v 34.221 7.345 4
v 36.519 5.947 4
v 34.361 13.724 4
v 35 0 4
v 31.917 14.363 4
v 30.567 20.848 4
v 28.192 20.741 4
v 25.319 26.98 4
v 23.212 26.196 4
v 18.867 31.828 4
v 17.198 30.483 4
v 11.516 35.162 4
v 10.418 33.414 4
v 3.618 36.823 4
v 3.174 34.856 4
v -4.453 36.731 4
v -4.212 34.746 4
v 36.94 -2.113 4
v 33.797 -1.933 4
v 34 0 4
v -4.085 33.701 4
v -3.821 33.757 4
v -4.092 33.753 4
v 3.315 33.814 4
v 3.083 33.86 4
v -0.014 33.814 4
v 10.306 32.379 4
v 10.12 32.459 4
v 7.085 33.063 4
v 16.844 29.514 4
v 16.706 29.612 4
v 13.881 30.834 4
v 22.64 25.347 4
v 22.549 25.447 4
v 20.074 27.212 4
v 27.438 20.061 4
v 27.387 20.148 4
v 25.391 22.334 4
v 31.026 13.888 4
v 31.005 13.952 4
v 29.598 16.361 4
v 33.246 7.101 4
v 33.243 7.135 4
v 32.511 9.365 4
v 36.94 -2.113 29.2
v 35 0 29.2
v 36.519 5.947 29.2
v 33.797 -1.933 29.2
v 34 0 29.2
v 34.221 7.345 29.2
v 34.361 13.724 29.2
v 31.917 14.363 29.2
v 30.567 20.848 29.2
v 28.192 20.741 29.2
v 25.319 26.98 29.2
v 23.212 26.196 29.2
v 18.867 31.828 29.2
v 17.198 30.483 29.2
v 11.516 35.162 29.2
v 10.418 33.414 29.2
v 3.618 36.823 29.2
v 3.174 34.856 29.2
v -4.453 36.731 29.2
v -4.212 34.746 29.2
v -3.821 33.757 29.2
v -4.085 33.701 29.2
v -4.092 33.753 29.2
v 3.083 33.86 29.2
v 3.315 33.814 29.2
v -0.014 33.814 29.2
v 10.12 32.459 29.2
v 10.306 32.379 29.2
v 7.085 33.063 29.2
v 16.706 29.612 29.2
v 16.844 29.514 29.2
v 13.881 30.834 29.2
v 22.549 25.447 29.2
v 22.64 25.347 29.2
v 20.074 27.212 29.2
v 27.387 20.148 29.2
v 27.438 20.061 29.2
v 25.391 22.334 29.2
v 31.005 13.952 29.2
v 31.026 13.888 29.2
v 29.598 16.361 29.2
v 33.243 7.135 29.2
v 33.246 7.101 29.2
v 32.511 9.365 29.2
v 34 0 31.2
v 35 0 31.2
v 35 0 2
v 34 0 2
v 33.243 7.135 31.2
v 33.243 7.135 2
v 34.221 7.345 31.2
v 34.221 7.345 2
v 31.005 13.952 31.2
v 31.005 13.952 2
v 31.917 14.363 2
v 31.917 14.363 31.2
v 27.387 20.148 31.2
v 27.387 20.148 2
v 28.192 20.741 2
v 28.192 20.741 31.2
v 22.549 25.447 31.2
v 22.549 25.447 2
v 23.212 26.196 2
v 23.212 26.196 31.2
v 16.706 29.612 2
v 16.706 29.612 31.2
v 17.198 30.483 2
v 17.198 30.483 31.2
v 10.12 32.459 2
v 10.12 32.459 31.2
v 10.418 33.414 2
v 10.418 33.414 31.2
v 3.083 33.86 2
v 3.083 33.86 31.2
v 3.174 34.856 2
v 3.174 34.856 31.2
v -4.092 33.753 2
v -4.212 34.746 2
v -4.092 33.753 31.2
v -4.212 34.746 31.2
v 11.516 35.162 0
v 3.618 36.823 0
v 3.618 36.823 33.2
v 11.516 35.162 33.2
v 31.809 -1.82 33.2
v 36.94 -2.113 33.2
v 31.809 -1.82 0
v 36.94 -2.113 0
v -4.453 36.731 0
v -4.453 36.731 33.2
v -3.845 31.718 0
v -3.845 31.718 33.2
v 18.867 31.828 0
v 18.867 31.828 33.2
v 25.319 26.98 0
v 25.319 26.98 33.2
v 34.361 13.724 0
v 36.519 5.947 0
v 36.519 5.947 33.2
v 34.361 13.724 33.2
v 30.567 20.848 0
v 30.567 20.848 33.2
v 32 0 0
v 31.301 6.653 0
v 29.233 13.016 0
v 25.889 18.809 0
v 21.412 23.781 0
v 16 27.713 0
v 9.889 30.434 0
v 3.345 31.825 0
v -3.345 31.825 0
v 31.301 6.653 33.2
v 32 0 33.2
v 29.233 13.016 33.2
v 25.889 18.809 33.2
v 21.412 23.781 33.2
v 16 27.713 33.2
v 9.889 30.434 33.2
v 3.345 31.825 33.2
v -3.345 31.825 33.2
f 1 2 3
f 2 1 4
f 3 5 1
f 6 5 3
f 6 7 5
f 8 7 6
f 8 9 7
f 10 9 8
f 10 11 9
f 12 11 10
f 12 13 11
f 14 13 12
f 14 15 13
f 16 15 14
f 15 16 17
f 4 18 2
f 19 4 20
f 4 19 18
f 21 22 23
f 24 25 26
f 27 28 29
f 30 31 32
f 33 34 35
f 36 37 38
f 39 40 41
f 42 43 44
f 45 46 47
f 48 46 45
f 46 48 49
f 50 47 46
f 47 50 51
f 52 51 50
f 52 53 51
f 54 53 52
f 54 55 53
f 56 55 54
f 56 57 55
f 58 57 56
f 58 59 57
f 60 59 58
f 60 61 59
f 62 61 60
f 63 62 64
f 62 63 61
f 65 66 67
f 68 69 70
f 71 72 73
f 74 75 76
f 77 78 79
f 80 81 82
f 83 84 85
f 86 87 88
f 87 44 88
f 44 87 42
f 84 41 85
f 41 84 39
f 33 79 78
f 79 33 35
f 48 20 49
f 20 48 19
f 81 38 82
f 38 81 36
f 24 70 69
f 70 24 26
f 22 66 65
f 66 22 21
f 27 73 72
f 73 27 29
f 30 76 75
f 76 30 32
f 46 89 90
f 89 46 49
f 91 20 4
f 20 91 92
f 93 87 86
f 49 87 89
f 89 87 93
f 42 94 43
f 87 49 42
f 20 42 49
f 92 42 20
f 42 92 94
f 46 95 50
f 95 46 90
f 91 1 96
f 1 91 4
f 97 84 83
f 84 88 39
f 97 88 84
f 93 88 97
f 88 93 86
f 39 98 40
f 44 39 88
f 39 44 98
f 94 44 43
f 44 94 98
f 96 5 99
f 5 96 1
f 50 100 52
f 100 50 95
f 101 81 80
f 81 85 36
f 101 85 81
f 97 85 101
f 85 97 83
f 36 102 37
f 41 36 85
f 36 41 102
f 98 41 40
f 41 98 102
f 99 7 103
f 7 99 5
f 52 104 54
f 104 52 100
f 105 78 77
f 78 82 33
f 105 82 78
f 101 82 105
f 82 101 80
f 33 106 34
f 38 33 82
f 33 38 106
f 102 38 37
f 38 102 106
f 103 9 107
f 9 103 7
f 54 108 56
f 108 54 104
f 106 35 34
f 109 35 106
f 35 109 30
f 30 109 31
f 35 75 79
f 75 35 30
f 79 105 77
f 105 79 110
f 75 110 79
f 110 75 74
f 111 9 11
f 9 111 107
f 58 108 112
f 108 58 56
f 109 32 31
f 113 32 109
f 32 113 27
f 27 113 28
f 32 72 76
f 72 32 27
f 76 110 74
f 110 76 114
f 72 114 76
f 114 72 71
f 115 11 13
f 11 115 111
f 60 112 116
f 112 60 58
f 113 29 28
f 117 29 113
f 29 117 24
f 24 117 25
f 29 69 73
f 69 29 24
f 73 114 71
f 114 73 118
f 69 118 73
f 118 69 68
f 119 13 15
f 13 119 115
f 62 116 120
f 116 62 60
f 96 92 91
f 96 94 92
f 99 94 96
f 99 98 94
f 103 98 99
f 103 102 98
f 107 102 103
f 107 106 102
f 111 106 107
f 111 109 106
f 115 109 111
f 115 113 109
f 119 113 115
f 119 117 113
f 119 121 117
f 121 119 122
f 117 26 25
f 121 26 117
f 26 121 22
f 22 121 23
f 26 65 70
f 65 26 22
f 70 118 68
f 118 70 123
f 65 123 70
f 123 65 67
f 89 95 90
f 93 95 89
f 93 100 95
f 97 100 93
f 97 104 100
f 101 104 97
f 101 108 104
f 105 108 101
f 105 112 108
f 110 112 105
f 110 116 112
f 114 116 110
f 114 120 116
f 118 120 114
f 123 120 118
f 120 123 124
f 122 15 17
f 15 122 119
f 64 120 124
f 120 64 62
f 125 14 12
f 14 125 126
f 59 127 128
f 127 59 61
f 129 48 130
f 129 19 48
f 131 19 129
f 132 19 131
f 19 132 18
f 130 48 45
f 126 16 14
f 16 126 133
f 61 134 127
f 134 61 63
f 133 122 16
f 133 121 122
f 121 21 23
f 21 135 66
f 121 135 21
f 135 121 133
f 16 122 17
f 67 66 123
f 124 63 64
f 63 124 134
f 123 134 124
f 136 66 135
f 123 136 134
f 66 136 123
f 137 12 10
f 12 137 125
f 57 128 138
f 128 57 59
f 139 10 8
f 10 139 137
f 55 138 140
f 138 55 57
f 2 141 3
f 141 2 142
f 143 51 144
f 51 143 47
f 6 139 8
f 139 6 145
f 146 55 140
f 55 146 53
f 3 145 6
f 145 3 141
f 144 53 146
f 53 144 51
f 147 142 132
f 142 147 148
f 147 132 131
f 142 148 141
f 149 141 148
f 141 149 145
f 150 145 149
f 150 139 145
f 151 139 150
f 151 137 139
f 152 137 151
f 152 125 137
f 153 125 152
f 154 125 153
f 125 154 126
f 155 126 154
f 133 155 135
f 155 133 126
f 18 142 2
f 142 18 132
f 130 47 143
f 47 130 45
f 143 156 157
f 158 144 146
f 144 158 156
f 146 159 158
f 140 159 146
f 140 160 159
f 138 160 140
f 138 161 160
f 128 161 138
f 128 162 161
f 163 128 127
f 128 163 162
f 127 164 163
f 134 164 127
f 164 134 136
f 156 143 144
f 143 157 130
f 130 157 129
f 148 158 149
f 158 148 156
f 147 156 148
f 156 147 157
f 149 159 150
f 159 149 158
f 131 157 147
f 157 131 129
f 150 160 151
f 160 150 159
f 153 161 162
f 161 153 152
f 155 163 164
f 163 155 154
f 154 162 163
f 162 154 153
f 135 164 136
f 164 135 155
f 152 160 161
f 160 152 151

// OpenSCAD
function aang(length, r) = 360*length / 2 / PI / r;
module wrist() {
  length = 50;
  max_width = 49;
  max_height = 32;
  bone1_r = 25/2;
  bone2_r = 28/2;
  tendon_r = 10/2;
  tendon_to_bone1_edge = 25;
  color("#ffe9d1")
  rotate([90, 0, 0])
  hull() {
    translate([-(max_width/2 - bone1_r), -bone1_r, 0])
      cylinder(h=length, r=bone1_r);
    translate([max_width/2 - bone2_r, -bone2_r, 0])
      cylinder(h=length, r=bone2_r);
    translate([-(max_width/2 - tendon_to_bone1_edge), -(max_height - tendon_r), 0])
      cylinder(h=length, r=tendon_r);
  }
}

disp_len = 59.2;
disp_width = 29.2;
disp_thickness = 1;
flex_width = 15.5 - 1.4;
flex_len = 14.3;
module display() {
  cube([disp_len, 29.2, 0.3]);
  mirror([1, 0, 0]) {
    translate([0, 8.56, 0])
      cube([14.3, 12.5, 0.3]);
    translate([0, 6.75, 0])
      cube([14.3 - 10.3, 15.5 - 1.4, 0.3]);
  }
}

module curve_chain(r, length, width) {
  // 2*pi*r * theta/360 = length
  arc_angle = 360 * length / 2 / PI / r;
  translate([width/2, 0, -r])
  rotate([90,-90,-90])
  union() {
    rotate_extrude(angle=arc_angle, convexity=1)
    difference() {
      square([r, width]);
      square([r - disp_thickness, width]);
    }
    rotate([0, 0, arc_angle-90])
    translate([0, r, width/2])
    rotate([00, 90, 90])
    children();
  }
}

module bent_display(disp_r, flex_r, flex_l) {
  curve_chain(disp_r, disp_len, disp_width) {
  curve_chain(disp_r, (flex_len - flex_l) / 2, flex_width) {
  curve_chain(flex_r, flex_l, flex_width) {
  curve_chain(disp_r, (flex_len - flex_l) / 2, flex_width) {
    children();
  }}}}
}

/*
wrist();

translate([25, -25, -6])
rotate([47, 0, 90])
// 34mm comes from some awful math for a 52mm chord length
bent_display(34, 5, 5) {
  color("green")
  translate([0, -3, -2])
  import("pcb.stl", convexity=2);
}*/

wall = 2;
difference() {
  color("grey")
  //cylinder(r=34+wall+disp_thickness,h=disp_width + wall*2);
  rotate([0, 0, -aang(wall, 34 + disp_thickness)])
  rotate_extrude(angle=360*(disp_len + wall)/2/PI/(34 + disp_thickness), convexity=2)
  square([34 + wall + disp_thickness, disp_width + wall*2]);
  translate([0, 0, -wall])
  cylinder(r=34-wall,h=disp_width + wall*4);
  translate([0, 0, wall*2])
  difference() {
    cylinder(r=34+wall*5,h=disp_width - wall*2);
    translate([0, 0, -wall])
    cylinder(r=34,h=disp_width);
  }
  translate([34+disp_thickness, 0, disp_width/2 + wall])
  rotate([0, 90, 0])
  bent_display(34+disp_thickness, 5, 5) {};
}
